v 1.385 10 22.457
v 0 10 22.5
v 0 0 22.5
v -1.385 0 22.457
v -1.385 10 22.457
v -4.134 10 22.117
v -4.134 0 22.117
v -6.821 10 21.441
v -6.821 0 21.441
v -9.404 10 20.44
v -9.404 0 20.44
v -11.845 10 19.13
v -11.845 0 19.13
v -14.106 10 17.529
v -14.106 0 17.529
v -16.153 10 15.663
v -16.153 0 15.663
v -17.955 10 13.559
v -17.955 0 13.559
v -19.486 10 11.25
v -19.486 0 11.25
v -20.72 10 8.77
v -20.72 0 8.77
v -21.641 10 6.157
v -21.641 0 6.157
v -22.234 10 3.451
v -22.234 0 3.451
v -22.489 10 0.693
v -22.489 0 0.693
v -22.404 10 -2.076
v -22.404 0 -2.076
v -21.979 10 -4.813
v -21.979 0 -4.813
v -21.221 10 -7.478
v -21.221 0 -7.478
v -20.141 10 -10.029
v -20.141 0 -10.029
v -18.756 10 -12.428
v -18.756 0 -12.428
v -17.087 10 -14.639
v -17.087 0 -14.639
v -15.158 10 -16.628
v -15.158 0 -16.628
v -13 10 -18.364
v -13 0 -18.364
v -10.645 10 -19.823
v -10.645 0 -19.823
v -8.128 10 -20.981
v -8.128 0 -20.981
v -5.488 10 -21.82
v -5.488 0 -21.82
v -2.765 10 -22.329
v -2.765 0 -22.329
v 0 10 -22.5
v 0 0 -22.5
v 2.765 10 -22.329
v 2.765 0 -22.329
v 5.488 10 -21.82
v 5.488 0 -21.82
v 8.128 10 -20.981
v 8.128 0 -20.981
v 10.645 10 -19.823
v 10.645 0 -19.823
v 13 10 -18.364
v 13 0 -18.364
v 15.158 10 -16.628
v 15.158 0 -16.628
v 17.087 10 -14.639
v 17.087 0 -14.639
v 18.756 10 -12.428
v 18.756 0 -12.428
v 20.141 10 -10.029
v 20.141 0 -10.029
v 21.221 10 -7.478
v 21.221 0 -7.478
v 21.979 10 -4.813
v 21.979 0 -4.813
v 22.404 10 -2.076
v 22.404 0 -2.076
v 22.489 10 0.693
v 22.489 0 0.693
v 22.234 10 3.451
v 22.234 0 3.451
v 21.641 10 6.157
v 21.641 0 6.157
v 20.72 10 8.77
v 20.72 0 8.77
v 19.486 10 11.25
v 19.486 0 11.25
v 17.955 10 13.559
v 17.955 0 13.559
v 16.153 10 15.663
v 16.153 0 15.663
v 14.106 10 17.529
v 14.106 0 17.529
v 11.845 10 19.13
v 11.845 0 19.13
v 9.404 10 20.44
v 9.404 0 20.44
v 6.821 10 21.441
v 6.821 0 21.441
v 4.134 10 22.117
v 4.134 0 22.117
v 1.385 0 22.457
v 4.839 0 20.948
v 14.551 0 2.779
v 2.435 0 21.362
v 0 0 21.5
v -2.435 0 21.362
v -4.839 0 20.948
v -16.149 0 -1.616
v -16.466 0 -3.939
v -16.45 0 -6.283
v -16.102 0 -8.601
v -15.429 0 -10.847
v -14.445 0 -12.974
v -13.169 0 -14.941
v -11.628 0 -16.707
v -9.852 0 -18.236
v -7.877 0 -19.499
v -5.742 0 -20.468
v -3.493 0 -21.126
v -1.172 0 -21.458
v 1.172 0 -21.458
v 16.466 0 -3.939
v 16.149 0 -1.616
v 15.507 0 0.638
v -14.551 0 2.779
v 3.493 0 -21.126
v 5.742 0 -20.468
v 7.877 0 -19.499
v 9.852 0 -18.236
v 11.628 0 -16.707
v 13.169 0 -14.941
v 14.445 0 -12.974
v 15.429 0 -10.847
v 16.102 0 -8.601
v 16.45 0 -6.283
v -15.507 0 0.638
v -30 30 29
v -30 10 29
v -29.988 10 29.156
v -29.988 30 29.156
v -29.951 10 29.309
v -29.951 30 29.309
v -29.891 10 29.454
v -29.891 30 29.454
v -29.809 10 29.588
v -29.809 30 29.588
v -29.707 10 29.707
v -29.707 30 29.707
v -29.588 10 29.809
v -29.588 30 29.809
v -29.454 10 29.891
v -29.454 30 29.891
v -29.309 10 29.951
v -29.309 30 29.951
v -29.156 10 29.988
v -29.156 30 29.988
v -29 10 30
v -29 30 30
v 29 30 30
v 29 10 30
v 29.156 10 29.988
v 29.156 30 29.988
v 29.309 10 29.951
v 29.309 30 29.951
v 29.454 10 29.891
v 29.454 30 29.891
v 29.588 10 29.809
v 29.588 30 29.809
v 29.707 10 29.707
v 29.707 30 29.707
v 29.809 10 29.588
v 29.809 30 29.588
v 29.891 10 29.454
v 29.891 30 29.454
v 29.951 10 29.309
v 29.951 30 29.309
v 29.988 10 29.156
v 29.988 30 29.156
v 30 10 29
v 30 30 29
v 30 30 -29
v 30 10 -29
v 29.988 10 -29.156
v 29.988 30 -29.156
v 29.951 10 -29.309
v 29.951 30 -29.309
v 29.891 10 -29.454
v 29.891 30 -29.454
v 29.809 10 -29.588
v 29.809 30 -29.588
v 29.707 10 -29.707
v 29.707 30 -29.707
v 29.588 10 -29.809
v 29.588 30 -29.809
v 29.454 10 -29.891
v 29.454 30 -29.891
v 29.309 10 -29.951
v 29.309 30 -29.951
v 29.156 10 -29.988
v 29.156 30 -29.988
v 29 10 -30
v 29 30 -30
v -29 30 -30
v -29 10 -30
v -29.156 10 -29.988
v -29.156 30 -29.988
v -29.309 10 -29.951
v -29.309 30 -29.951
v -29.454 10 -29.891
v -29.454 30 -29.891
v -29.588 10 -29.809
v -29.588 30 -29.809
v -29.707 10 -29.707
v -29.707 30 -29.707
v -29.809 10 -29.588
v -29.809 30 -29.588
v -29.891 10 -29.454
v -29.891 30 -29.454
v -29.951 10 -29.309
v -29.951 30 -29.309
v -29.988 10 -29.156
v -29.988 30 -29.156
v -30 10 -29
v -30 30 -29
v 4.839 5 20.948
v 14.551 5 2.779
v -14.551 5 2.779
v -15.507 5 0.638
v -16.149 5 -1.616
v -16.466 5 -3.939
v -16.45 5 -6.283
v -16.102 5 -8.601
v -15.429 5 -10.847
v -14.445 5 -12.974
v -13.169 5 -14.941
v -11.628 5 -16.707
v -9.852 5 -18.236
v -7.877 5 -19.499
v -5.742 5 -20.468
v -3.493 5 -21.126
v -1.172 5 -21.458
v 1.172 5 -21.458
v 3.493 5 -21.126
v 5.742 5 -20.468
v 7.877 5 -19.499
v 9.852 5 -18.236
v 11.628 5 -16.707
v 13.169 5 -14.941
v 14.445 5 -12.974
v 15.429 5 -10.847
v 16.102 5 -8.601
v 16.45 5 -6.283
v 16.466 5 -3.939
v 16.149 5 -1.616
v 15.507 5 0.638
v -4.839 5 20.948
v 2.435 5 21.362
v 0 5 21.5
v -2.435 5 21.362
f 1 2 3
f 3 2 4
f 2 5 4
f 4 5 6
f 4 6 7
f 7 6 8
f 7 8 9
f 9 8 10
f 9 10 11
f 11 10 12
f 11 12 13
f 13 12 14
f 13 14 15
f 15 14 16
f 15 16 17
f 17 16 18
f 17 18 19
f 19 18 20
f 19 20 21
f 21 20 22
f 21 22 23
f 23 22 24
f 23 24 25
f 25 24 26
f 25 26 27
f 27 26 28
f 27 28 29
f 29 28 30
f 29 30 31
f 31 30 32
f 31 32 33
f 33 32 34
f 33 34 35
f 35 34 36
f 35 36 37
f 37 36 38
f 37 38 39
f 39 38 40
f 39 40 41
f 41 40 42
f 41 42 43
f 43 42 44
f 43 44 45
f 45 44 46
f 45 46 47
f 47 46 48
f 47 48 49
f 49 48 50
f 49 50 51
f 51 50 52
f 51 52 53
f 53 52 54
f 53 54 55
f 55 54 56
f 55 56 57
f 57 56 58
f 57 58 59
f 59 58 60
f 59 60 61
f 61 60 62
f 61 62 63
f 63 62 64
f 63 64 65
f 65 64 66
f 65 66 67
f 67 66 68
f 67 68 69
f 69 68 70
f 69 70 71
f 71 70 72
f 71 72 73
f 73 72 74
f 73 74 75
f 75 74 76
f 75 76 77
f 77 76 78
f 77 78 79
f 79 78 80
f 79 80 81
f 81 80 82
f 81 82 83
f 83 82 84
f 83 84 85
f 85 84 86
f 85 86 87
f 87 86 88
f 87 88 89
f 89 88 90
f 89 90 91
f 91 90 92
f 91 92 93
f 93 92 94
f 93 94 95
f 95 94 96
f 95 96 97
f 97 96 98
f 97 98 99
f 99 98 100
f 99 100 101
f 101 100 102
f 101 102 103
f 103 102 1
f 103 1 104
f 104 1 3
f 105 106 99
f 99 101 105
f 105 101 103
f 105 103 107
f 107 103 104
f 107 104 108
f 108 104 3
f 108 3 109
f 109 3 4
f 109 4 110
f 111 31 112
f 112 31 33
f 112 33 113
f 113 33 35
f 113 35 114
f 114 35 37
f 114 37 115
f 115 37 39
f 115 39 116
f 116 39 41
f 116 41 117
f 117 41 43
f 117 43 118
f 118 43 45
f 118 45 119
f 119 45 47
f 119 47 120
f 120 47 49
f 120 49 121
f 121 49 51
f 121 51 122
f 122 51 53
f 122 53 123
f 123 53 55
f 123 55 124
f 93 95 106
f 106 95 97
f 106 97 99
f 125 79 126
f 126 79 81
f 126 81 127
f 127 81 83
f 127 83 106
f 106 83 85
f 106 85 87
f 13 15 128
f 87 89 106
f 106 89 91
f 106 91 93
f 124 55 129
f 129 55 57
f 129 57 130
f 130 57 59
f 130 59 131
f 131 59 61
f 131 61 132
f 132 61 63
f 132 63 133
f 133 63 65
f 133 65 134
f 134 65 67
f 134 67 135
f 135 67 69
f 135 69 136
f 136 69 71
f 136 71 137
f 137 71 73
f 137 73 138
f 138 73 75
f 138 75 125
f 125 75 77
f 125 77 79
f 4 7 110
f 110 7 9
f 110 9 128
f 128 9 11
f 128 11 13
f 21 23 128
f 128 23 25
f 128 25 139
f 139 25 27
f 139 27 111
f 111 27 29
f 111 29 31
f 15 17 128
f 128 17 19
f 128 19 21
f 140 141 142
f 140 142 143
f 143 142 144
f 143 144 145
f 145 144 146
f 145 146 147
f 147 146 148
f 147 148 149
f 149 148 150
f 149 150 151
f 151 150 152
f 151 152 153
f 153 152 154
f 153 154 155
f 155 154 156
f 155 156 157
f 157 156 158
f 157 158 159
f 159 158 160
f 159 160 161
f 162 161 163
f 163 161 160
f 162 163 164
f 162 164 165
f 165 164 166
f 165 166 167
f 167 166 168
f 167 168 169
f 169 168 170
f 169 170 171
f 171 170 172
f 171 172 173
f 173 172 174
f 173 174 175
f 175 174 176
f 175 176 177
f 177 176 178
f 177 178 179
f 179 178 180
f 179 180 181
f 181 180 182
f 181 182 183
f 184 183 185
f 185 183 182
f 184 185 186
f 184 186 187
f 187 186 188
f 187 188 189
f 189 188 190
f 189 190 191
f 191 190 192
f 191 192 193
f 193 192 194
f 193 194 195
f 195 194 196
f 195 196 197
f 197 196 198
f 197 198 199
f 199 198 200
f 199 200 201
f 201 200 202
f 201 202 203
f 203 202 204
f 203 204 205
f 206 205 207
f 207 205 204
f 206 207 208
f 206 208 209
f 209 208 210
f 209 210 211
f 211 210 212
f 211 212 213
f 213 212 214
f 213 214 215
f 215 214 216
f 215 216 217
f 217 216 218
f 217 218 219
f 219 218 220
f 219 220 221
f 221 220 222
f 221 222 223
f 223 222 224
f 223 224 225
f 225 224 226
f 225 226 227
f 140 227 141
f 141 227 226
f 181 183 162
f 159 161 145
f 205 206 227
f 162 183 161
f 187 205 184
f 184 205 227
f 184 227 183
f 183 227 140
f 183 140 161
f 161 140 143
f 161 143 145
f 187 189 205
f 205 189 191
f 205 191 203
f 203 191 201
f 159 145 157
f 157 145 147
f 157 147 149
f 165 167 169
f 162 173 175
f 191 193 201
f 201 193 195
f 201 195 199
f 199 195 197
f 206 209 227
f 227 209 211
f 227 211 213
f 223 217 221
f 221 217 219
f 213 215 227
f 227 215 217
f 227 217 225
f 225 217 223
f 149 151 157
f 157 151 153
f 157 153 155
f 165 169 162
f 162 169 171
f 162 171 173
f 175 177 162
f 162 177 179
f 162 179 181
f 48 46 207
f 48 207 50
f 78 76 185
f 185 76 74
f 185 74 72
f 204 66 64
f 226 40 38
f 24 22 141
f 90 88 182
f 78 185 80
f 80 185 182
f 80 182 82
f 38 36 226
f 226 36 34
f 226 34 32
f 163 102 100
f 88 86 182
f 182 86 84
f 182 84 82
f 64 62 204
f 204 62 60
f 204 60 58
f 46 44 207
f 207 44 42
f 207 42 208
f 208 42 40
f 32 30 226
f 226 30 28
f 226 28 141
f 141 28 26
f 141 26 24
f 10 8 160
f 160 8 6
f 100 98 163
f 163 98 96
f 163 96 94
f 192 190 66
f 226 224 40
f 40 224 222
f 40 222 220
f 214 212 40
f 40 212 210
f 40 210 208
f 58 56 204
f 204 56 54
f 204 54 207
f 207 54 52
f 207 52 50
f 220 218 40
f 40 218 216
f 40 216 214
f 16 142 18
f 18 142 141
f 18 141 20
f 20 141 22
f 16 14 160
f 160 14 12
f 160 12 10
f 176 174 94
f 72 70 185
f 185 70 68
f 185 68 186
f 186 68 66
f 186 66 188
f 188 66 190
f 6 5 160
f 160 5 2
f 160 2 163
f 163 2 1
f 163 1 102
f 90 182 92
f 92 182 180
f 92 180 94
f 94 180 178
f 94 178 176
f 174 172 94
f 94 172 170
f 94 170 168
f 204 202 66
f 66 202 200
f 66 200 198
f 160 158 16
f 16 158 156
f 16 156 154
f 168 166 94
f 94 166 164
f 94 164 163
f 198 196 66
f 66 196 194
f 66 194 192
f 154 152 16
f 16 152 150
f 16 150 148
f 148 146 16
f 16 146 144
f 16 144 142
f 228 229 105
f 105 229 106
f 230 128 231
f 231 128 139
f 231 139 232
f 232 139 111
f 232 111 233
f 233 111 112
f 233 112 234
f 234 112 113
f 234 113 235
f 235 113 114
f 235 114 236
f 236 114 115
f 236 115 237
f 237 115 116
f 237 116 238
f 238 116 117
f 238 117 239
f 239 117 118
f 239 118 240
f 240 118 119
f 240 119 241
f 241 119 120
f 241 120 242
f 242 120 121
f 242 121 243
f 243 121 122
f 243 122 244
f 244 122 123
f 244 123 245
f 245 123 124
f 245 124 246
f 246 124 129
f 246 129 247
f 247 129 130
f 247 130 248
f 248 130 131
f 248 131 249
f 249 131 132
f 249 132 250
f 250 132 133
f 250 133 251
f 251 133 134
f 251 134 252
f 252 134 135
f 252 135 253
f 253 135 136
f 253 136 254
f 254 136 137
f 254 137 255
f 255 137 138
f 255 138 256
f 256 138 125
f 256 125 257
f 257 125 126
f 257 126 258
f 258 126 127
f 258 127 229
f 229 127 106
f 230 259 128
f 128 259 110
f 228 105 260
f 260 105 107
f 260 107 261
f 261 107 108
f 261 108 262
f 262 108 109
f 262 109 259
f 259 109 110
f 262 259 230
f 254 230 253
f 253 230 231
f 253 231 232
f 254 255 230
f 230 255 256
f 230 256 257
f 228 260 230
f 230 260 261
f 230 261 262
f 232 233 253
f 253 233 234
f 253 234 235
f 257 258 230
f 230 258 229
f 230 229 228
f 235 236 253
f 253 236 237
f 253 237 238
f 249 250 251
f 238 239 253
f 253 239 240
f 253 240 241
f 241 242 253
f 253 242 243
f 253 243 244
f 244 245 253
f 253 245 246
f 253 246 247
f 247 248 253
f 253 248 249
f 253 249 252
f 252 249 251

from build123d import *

# Parameters (mm, degrees)
SKETCH1_R           = 22.5
BOSS_EXTRUDE1_DEPTH = 10
BOSS_EXTRUDE2_DEPTH = 20
SKETCH3_R           = 16.5
CUT_EXTRUDE2_DEPTH  = 5


with BuildPart() as part:
    # Sketch1 → Boss-Extrude1 (new body)
    with BuildSketch(Plane(origin=(0, 0, 0), x_dir=(1, 0, 0), z_dir=(0, 1, 0))):
        Circle(SKETCH1_R)
    extrude(amount=BOSS_EXTRUDE1_DEPTH)

    # Sketch2 → Boss-Extrude2 (add)
    with BuildSketch(Plane(origin=(0, 10, 0), x_dir=(1, 0, 0), z_dir=(0, 1, 0))):
        with BuildLine():
            Line((-29, 30), (29, 30))
            ThreePointArc((29, 30), (29.707106781, 29.707106781), (30, 29))
            Line((30, 29), (30, -29))
            ThreePointArc((30, -29), (29.707106781, -29.707106781), (29, -30))
            Line((29, -30), (-29, -30))
            ThreePointArc((-29, -30), (-29.707106781, -29.707106781), (-30, -29))
            Line((-30, -29), (-30, 29))
            ThreePointArc((-30, 29), (-29.707106781, 29.707106781), (-29, 30))
        make_face()
    extrude(amount=BOSS_EXTRUDE2_DEPTH)

    # Sketch3 → Cut-Extrude2 (cut)
    with BuildSketch(Plane.XZ):
        with BuildLine():
            ThreePointArc((-14.551420086, 2.778571429), (0, 11.5), (14.551420086, 2.778571429))
            Line((14.551420086, 2.778571429), (4.83856504, 20.948467447))
            ThreePointArc((4.83856504, 20.948467447), (0, 21.5), (-4.83856504, 20.948467447))
            Line((-4.83856504, 20.948467447), (-14.551420086, 2.778571429))
        make_face()
        with Locations((0, -5)):
            Circle(SKETCH3_R)
    extrude(amount=-CUT_EXTRUDE2_DEPTH, mode=Mode.SUBTRACT)


solid = part.part
